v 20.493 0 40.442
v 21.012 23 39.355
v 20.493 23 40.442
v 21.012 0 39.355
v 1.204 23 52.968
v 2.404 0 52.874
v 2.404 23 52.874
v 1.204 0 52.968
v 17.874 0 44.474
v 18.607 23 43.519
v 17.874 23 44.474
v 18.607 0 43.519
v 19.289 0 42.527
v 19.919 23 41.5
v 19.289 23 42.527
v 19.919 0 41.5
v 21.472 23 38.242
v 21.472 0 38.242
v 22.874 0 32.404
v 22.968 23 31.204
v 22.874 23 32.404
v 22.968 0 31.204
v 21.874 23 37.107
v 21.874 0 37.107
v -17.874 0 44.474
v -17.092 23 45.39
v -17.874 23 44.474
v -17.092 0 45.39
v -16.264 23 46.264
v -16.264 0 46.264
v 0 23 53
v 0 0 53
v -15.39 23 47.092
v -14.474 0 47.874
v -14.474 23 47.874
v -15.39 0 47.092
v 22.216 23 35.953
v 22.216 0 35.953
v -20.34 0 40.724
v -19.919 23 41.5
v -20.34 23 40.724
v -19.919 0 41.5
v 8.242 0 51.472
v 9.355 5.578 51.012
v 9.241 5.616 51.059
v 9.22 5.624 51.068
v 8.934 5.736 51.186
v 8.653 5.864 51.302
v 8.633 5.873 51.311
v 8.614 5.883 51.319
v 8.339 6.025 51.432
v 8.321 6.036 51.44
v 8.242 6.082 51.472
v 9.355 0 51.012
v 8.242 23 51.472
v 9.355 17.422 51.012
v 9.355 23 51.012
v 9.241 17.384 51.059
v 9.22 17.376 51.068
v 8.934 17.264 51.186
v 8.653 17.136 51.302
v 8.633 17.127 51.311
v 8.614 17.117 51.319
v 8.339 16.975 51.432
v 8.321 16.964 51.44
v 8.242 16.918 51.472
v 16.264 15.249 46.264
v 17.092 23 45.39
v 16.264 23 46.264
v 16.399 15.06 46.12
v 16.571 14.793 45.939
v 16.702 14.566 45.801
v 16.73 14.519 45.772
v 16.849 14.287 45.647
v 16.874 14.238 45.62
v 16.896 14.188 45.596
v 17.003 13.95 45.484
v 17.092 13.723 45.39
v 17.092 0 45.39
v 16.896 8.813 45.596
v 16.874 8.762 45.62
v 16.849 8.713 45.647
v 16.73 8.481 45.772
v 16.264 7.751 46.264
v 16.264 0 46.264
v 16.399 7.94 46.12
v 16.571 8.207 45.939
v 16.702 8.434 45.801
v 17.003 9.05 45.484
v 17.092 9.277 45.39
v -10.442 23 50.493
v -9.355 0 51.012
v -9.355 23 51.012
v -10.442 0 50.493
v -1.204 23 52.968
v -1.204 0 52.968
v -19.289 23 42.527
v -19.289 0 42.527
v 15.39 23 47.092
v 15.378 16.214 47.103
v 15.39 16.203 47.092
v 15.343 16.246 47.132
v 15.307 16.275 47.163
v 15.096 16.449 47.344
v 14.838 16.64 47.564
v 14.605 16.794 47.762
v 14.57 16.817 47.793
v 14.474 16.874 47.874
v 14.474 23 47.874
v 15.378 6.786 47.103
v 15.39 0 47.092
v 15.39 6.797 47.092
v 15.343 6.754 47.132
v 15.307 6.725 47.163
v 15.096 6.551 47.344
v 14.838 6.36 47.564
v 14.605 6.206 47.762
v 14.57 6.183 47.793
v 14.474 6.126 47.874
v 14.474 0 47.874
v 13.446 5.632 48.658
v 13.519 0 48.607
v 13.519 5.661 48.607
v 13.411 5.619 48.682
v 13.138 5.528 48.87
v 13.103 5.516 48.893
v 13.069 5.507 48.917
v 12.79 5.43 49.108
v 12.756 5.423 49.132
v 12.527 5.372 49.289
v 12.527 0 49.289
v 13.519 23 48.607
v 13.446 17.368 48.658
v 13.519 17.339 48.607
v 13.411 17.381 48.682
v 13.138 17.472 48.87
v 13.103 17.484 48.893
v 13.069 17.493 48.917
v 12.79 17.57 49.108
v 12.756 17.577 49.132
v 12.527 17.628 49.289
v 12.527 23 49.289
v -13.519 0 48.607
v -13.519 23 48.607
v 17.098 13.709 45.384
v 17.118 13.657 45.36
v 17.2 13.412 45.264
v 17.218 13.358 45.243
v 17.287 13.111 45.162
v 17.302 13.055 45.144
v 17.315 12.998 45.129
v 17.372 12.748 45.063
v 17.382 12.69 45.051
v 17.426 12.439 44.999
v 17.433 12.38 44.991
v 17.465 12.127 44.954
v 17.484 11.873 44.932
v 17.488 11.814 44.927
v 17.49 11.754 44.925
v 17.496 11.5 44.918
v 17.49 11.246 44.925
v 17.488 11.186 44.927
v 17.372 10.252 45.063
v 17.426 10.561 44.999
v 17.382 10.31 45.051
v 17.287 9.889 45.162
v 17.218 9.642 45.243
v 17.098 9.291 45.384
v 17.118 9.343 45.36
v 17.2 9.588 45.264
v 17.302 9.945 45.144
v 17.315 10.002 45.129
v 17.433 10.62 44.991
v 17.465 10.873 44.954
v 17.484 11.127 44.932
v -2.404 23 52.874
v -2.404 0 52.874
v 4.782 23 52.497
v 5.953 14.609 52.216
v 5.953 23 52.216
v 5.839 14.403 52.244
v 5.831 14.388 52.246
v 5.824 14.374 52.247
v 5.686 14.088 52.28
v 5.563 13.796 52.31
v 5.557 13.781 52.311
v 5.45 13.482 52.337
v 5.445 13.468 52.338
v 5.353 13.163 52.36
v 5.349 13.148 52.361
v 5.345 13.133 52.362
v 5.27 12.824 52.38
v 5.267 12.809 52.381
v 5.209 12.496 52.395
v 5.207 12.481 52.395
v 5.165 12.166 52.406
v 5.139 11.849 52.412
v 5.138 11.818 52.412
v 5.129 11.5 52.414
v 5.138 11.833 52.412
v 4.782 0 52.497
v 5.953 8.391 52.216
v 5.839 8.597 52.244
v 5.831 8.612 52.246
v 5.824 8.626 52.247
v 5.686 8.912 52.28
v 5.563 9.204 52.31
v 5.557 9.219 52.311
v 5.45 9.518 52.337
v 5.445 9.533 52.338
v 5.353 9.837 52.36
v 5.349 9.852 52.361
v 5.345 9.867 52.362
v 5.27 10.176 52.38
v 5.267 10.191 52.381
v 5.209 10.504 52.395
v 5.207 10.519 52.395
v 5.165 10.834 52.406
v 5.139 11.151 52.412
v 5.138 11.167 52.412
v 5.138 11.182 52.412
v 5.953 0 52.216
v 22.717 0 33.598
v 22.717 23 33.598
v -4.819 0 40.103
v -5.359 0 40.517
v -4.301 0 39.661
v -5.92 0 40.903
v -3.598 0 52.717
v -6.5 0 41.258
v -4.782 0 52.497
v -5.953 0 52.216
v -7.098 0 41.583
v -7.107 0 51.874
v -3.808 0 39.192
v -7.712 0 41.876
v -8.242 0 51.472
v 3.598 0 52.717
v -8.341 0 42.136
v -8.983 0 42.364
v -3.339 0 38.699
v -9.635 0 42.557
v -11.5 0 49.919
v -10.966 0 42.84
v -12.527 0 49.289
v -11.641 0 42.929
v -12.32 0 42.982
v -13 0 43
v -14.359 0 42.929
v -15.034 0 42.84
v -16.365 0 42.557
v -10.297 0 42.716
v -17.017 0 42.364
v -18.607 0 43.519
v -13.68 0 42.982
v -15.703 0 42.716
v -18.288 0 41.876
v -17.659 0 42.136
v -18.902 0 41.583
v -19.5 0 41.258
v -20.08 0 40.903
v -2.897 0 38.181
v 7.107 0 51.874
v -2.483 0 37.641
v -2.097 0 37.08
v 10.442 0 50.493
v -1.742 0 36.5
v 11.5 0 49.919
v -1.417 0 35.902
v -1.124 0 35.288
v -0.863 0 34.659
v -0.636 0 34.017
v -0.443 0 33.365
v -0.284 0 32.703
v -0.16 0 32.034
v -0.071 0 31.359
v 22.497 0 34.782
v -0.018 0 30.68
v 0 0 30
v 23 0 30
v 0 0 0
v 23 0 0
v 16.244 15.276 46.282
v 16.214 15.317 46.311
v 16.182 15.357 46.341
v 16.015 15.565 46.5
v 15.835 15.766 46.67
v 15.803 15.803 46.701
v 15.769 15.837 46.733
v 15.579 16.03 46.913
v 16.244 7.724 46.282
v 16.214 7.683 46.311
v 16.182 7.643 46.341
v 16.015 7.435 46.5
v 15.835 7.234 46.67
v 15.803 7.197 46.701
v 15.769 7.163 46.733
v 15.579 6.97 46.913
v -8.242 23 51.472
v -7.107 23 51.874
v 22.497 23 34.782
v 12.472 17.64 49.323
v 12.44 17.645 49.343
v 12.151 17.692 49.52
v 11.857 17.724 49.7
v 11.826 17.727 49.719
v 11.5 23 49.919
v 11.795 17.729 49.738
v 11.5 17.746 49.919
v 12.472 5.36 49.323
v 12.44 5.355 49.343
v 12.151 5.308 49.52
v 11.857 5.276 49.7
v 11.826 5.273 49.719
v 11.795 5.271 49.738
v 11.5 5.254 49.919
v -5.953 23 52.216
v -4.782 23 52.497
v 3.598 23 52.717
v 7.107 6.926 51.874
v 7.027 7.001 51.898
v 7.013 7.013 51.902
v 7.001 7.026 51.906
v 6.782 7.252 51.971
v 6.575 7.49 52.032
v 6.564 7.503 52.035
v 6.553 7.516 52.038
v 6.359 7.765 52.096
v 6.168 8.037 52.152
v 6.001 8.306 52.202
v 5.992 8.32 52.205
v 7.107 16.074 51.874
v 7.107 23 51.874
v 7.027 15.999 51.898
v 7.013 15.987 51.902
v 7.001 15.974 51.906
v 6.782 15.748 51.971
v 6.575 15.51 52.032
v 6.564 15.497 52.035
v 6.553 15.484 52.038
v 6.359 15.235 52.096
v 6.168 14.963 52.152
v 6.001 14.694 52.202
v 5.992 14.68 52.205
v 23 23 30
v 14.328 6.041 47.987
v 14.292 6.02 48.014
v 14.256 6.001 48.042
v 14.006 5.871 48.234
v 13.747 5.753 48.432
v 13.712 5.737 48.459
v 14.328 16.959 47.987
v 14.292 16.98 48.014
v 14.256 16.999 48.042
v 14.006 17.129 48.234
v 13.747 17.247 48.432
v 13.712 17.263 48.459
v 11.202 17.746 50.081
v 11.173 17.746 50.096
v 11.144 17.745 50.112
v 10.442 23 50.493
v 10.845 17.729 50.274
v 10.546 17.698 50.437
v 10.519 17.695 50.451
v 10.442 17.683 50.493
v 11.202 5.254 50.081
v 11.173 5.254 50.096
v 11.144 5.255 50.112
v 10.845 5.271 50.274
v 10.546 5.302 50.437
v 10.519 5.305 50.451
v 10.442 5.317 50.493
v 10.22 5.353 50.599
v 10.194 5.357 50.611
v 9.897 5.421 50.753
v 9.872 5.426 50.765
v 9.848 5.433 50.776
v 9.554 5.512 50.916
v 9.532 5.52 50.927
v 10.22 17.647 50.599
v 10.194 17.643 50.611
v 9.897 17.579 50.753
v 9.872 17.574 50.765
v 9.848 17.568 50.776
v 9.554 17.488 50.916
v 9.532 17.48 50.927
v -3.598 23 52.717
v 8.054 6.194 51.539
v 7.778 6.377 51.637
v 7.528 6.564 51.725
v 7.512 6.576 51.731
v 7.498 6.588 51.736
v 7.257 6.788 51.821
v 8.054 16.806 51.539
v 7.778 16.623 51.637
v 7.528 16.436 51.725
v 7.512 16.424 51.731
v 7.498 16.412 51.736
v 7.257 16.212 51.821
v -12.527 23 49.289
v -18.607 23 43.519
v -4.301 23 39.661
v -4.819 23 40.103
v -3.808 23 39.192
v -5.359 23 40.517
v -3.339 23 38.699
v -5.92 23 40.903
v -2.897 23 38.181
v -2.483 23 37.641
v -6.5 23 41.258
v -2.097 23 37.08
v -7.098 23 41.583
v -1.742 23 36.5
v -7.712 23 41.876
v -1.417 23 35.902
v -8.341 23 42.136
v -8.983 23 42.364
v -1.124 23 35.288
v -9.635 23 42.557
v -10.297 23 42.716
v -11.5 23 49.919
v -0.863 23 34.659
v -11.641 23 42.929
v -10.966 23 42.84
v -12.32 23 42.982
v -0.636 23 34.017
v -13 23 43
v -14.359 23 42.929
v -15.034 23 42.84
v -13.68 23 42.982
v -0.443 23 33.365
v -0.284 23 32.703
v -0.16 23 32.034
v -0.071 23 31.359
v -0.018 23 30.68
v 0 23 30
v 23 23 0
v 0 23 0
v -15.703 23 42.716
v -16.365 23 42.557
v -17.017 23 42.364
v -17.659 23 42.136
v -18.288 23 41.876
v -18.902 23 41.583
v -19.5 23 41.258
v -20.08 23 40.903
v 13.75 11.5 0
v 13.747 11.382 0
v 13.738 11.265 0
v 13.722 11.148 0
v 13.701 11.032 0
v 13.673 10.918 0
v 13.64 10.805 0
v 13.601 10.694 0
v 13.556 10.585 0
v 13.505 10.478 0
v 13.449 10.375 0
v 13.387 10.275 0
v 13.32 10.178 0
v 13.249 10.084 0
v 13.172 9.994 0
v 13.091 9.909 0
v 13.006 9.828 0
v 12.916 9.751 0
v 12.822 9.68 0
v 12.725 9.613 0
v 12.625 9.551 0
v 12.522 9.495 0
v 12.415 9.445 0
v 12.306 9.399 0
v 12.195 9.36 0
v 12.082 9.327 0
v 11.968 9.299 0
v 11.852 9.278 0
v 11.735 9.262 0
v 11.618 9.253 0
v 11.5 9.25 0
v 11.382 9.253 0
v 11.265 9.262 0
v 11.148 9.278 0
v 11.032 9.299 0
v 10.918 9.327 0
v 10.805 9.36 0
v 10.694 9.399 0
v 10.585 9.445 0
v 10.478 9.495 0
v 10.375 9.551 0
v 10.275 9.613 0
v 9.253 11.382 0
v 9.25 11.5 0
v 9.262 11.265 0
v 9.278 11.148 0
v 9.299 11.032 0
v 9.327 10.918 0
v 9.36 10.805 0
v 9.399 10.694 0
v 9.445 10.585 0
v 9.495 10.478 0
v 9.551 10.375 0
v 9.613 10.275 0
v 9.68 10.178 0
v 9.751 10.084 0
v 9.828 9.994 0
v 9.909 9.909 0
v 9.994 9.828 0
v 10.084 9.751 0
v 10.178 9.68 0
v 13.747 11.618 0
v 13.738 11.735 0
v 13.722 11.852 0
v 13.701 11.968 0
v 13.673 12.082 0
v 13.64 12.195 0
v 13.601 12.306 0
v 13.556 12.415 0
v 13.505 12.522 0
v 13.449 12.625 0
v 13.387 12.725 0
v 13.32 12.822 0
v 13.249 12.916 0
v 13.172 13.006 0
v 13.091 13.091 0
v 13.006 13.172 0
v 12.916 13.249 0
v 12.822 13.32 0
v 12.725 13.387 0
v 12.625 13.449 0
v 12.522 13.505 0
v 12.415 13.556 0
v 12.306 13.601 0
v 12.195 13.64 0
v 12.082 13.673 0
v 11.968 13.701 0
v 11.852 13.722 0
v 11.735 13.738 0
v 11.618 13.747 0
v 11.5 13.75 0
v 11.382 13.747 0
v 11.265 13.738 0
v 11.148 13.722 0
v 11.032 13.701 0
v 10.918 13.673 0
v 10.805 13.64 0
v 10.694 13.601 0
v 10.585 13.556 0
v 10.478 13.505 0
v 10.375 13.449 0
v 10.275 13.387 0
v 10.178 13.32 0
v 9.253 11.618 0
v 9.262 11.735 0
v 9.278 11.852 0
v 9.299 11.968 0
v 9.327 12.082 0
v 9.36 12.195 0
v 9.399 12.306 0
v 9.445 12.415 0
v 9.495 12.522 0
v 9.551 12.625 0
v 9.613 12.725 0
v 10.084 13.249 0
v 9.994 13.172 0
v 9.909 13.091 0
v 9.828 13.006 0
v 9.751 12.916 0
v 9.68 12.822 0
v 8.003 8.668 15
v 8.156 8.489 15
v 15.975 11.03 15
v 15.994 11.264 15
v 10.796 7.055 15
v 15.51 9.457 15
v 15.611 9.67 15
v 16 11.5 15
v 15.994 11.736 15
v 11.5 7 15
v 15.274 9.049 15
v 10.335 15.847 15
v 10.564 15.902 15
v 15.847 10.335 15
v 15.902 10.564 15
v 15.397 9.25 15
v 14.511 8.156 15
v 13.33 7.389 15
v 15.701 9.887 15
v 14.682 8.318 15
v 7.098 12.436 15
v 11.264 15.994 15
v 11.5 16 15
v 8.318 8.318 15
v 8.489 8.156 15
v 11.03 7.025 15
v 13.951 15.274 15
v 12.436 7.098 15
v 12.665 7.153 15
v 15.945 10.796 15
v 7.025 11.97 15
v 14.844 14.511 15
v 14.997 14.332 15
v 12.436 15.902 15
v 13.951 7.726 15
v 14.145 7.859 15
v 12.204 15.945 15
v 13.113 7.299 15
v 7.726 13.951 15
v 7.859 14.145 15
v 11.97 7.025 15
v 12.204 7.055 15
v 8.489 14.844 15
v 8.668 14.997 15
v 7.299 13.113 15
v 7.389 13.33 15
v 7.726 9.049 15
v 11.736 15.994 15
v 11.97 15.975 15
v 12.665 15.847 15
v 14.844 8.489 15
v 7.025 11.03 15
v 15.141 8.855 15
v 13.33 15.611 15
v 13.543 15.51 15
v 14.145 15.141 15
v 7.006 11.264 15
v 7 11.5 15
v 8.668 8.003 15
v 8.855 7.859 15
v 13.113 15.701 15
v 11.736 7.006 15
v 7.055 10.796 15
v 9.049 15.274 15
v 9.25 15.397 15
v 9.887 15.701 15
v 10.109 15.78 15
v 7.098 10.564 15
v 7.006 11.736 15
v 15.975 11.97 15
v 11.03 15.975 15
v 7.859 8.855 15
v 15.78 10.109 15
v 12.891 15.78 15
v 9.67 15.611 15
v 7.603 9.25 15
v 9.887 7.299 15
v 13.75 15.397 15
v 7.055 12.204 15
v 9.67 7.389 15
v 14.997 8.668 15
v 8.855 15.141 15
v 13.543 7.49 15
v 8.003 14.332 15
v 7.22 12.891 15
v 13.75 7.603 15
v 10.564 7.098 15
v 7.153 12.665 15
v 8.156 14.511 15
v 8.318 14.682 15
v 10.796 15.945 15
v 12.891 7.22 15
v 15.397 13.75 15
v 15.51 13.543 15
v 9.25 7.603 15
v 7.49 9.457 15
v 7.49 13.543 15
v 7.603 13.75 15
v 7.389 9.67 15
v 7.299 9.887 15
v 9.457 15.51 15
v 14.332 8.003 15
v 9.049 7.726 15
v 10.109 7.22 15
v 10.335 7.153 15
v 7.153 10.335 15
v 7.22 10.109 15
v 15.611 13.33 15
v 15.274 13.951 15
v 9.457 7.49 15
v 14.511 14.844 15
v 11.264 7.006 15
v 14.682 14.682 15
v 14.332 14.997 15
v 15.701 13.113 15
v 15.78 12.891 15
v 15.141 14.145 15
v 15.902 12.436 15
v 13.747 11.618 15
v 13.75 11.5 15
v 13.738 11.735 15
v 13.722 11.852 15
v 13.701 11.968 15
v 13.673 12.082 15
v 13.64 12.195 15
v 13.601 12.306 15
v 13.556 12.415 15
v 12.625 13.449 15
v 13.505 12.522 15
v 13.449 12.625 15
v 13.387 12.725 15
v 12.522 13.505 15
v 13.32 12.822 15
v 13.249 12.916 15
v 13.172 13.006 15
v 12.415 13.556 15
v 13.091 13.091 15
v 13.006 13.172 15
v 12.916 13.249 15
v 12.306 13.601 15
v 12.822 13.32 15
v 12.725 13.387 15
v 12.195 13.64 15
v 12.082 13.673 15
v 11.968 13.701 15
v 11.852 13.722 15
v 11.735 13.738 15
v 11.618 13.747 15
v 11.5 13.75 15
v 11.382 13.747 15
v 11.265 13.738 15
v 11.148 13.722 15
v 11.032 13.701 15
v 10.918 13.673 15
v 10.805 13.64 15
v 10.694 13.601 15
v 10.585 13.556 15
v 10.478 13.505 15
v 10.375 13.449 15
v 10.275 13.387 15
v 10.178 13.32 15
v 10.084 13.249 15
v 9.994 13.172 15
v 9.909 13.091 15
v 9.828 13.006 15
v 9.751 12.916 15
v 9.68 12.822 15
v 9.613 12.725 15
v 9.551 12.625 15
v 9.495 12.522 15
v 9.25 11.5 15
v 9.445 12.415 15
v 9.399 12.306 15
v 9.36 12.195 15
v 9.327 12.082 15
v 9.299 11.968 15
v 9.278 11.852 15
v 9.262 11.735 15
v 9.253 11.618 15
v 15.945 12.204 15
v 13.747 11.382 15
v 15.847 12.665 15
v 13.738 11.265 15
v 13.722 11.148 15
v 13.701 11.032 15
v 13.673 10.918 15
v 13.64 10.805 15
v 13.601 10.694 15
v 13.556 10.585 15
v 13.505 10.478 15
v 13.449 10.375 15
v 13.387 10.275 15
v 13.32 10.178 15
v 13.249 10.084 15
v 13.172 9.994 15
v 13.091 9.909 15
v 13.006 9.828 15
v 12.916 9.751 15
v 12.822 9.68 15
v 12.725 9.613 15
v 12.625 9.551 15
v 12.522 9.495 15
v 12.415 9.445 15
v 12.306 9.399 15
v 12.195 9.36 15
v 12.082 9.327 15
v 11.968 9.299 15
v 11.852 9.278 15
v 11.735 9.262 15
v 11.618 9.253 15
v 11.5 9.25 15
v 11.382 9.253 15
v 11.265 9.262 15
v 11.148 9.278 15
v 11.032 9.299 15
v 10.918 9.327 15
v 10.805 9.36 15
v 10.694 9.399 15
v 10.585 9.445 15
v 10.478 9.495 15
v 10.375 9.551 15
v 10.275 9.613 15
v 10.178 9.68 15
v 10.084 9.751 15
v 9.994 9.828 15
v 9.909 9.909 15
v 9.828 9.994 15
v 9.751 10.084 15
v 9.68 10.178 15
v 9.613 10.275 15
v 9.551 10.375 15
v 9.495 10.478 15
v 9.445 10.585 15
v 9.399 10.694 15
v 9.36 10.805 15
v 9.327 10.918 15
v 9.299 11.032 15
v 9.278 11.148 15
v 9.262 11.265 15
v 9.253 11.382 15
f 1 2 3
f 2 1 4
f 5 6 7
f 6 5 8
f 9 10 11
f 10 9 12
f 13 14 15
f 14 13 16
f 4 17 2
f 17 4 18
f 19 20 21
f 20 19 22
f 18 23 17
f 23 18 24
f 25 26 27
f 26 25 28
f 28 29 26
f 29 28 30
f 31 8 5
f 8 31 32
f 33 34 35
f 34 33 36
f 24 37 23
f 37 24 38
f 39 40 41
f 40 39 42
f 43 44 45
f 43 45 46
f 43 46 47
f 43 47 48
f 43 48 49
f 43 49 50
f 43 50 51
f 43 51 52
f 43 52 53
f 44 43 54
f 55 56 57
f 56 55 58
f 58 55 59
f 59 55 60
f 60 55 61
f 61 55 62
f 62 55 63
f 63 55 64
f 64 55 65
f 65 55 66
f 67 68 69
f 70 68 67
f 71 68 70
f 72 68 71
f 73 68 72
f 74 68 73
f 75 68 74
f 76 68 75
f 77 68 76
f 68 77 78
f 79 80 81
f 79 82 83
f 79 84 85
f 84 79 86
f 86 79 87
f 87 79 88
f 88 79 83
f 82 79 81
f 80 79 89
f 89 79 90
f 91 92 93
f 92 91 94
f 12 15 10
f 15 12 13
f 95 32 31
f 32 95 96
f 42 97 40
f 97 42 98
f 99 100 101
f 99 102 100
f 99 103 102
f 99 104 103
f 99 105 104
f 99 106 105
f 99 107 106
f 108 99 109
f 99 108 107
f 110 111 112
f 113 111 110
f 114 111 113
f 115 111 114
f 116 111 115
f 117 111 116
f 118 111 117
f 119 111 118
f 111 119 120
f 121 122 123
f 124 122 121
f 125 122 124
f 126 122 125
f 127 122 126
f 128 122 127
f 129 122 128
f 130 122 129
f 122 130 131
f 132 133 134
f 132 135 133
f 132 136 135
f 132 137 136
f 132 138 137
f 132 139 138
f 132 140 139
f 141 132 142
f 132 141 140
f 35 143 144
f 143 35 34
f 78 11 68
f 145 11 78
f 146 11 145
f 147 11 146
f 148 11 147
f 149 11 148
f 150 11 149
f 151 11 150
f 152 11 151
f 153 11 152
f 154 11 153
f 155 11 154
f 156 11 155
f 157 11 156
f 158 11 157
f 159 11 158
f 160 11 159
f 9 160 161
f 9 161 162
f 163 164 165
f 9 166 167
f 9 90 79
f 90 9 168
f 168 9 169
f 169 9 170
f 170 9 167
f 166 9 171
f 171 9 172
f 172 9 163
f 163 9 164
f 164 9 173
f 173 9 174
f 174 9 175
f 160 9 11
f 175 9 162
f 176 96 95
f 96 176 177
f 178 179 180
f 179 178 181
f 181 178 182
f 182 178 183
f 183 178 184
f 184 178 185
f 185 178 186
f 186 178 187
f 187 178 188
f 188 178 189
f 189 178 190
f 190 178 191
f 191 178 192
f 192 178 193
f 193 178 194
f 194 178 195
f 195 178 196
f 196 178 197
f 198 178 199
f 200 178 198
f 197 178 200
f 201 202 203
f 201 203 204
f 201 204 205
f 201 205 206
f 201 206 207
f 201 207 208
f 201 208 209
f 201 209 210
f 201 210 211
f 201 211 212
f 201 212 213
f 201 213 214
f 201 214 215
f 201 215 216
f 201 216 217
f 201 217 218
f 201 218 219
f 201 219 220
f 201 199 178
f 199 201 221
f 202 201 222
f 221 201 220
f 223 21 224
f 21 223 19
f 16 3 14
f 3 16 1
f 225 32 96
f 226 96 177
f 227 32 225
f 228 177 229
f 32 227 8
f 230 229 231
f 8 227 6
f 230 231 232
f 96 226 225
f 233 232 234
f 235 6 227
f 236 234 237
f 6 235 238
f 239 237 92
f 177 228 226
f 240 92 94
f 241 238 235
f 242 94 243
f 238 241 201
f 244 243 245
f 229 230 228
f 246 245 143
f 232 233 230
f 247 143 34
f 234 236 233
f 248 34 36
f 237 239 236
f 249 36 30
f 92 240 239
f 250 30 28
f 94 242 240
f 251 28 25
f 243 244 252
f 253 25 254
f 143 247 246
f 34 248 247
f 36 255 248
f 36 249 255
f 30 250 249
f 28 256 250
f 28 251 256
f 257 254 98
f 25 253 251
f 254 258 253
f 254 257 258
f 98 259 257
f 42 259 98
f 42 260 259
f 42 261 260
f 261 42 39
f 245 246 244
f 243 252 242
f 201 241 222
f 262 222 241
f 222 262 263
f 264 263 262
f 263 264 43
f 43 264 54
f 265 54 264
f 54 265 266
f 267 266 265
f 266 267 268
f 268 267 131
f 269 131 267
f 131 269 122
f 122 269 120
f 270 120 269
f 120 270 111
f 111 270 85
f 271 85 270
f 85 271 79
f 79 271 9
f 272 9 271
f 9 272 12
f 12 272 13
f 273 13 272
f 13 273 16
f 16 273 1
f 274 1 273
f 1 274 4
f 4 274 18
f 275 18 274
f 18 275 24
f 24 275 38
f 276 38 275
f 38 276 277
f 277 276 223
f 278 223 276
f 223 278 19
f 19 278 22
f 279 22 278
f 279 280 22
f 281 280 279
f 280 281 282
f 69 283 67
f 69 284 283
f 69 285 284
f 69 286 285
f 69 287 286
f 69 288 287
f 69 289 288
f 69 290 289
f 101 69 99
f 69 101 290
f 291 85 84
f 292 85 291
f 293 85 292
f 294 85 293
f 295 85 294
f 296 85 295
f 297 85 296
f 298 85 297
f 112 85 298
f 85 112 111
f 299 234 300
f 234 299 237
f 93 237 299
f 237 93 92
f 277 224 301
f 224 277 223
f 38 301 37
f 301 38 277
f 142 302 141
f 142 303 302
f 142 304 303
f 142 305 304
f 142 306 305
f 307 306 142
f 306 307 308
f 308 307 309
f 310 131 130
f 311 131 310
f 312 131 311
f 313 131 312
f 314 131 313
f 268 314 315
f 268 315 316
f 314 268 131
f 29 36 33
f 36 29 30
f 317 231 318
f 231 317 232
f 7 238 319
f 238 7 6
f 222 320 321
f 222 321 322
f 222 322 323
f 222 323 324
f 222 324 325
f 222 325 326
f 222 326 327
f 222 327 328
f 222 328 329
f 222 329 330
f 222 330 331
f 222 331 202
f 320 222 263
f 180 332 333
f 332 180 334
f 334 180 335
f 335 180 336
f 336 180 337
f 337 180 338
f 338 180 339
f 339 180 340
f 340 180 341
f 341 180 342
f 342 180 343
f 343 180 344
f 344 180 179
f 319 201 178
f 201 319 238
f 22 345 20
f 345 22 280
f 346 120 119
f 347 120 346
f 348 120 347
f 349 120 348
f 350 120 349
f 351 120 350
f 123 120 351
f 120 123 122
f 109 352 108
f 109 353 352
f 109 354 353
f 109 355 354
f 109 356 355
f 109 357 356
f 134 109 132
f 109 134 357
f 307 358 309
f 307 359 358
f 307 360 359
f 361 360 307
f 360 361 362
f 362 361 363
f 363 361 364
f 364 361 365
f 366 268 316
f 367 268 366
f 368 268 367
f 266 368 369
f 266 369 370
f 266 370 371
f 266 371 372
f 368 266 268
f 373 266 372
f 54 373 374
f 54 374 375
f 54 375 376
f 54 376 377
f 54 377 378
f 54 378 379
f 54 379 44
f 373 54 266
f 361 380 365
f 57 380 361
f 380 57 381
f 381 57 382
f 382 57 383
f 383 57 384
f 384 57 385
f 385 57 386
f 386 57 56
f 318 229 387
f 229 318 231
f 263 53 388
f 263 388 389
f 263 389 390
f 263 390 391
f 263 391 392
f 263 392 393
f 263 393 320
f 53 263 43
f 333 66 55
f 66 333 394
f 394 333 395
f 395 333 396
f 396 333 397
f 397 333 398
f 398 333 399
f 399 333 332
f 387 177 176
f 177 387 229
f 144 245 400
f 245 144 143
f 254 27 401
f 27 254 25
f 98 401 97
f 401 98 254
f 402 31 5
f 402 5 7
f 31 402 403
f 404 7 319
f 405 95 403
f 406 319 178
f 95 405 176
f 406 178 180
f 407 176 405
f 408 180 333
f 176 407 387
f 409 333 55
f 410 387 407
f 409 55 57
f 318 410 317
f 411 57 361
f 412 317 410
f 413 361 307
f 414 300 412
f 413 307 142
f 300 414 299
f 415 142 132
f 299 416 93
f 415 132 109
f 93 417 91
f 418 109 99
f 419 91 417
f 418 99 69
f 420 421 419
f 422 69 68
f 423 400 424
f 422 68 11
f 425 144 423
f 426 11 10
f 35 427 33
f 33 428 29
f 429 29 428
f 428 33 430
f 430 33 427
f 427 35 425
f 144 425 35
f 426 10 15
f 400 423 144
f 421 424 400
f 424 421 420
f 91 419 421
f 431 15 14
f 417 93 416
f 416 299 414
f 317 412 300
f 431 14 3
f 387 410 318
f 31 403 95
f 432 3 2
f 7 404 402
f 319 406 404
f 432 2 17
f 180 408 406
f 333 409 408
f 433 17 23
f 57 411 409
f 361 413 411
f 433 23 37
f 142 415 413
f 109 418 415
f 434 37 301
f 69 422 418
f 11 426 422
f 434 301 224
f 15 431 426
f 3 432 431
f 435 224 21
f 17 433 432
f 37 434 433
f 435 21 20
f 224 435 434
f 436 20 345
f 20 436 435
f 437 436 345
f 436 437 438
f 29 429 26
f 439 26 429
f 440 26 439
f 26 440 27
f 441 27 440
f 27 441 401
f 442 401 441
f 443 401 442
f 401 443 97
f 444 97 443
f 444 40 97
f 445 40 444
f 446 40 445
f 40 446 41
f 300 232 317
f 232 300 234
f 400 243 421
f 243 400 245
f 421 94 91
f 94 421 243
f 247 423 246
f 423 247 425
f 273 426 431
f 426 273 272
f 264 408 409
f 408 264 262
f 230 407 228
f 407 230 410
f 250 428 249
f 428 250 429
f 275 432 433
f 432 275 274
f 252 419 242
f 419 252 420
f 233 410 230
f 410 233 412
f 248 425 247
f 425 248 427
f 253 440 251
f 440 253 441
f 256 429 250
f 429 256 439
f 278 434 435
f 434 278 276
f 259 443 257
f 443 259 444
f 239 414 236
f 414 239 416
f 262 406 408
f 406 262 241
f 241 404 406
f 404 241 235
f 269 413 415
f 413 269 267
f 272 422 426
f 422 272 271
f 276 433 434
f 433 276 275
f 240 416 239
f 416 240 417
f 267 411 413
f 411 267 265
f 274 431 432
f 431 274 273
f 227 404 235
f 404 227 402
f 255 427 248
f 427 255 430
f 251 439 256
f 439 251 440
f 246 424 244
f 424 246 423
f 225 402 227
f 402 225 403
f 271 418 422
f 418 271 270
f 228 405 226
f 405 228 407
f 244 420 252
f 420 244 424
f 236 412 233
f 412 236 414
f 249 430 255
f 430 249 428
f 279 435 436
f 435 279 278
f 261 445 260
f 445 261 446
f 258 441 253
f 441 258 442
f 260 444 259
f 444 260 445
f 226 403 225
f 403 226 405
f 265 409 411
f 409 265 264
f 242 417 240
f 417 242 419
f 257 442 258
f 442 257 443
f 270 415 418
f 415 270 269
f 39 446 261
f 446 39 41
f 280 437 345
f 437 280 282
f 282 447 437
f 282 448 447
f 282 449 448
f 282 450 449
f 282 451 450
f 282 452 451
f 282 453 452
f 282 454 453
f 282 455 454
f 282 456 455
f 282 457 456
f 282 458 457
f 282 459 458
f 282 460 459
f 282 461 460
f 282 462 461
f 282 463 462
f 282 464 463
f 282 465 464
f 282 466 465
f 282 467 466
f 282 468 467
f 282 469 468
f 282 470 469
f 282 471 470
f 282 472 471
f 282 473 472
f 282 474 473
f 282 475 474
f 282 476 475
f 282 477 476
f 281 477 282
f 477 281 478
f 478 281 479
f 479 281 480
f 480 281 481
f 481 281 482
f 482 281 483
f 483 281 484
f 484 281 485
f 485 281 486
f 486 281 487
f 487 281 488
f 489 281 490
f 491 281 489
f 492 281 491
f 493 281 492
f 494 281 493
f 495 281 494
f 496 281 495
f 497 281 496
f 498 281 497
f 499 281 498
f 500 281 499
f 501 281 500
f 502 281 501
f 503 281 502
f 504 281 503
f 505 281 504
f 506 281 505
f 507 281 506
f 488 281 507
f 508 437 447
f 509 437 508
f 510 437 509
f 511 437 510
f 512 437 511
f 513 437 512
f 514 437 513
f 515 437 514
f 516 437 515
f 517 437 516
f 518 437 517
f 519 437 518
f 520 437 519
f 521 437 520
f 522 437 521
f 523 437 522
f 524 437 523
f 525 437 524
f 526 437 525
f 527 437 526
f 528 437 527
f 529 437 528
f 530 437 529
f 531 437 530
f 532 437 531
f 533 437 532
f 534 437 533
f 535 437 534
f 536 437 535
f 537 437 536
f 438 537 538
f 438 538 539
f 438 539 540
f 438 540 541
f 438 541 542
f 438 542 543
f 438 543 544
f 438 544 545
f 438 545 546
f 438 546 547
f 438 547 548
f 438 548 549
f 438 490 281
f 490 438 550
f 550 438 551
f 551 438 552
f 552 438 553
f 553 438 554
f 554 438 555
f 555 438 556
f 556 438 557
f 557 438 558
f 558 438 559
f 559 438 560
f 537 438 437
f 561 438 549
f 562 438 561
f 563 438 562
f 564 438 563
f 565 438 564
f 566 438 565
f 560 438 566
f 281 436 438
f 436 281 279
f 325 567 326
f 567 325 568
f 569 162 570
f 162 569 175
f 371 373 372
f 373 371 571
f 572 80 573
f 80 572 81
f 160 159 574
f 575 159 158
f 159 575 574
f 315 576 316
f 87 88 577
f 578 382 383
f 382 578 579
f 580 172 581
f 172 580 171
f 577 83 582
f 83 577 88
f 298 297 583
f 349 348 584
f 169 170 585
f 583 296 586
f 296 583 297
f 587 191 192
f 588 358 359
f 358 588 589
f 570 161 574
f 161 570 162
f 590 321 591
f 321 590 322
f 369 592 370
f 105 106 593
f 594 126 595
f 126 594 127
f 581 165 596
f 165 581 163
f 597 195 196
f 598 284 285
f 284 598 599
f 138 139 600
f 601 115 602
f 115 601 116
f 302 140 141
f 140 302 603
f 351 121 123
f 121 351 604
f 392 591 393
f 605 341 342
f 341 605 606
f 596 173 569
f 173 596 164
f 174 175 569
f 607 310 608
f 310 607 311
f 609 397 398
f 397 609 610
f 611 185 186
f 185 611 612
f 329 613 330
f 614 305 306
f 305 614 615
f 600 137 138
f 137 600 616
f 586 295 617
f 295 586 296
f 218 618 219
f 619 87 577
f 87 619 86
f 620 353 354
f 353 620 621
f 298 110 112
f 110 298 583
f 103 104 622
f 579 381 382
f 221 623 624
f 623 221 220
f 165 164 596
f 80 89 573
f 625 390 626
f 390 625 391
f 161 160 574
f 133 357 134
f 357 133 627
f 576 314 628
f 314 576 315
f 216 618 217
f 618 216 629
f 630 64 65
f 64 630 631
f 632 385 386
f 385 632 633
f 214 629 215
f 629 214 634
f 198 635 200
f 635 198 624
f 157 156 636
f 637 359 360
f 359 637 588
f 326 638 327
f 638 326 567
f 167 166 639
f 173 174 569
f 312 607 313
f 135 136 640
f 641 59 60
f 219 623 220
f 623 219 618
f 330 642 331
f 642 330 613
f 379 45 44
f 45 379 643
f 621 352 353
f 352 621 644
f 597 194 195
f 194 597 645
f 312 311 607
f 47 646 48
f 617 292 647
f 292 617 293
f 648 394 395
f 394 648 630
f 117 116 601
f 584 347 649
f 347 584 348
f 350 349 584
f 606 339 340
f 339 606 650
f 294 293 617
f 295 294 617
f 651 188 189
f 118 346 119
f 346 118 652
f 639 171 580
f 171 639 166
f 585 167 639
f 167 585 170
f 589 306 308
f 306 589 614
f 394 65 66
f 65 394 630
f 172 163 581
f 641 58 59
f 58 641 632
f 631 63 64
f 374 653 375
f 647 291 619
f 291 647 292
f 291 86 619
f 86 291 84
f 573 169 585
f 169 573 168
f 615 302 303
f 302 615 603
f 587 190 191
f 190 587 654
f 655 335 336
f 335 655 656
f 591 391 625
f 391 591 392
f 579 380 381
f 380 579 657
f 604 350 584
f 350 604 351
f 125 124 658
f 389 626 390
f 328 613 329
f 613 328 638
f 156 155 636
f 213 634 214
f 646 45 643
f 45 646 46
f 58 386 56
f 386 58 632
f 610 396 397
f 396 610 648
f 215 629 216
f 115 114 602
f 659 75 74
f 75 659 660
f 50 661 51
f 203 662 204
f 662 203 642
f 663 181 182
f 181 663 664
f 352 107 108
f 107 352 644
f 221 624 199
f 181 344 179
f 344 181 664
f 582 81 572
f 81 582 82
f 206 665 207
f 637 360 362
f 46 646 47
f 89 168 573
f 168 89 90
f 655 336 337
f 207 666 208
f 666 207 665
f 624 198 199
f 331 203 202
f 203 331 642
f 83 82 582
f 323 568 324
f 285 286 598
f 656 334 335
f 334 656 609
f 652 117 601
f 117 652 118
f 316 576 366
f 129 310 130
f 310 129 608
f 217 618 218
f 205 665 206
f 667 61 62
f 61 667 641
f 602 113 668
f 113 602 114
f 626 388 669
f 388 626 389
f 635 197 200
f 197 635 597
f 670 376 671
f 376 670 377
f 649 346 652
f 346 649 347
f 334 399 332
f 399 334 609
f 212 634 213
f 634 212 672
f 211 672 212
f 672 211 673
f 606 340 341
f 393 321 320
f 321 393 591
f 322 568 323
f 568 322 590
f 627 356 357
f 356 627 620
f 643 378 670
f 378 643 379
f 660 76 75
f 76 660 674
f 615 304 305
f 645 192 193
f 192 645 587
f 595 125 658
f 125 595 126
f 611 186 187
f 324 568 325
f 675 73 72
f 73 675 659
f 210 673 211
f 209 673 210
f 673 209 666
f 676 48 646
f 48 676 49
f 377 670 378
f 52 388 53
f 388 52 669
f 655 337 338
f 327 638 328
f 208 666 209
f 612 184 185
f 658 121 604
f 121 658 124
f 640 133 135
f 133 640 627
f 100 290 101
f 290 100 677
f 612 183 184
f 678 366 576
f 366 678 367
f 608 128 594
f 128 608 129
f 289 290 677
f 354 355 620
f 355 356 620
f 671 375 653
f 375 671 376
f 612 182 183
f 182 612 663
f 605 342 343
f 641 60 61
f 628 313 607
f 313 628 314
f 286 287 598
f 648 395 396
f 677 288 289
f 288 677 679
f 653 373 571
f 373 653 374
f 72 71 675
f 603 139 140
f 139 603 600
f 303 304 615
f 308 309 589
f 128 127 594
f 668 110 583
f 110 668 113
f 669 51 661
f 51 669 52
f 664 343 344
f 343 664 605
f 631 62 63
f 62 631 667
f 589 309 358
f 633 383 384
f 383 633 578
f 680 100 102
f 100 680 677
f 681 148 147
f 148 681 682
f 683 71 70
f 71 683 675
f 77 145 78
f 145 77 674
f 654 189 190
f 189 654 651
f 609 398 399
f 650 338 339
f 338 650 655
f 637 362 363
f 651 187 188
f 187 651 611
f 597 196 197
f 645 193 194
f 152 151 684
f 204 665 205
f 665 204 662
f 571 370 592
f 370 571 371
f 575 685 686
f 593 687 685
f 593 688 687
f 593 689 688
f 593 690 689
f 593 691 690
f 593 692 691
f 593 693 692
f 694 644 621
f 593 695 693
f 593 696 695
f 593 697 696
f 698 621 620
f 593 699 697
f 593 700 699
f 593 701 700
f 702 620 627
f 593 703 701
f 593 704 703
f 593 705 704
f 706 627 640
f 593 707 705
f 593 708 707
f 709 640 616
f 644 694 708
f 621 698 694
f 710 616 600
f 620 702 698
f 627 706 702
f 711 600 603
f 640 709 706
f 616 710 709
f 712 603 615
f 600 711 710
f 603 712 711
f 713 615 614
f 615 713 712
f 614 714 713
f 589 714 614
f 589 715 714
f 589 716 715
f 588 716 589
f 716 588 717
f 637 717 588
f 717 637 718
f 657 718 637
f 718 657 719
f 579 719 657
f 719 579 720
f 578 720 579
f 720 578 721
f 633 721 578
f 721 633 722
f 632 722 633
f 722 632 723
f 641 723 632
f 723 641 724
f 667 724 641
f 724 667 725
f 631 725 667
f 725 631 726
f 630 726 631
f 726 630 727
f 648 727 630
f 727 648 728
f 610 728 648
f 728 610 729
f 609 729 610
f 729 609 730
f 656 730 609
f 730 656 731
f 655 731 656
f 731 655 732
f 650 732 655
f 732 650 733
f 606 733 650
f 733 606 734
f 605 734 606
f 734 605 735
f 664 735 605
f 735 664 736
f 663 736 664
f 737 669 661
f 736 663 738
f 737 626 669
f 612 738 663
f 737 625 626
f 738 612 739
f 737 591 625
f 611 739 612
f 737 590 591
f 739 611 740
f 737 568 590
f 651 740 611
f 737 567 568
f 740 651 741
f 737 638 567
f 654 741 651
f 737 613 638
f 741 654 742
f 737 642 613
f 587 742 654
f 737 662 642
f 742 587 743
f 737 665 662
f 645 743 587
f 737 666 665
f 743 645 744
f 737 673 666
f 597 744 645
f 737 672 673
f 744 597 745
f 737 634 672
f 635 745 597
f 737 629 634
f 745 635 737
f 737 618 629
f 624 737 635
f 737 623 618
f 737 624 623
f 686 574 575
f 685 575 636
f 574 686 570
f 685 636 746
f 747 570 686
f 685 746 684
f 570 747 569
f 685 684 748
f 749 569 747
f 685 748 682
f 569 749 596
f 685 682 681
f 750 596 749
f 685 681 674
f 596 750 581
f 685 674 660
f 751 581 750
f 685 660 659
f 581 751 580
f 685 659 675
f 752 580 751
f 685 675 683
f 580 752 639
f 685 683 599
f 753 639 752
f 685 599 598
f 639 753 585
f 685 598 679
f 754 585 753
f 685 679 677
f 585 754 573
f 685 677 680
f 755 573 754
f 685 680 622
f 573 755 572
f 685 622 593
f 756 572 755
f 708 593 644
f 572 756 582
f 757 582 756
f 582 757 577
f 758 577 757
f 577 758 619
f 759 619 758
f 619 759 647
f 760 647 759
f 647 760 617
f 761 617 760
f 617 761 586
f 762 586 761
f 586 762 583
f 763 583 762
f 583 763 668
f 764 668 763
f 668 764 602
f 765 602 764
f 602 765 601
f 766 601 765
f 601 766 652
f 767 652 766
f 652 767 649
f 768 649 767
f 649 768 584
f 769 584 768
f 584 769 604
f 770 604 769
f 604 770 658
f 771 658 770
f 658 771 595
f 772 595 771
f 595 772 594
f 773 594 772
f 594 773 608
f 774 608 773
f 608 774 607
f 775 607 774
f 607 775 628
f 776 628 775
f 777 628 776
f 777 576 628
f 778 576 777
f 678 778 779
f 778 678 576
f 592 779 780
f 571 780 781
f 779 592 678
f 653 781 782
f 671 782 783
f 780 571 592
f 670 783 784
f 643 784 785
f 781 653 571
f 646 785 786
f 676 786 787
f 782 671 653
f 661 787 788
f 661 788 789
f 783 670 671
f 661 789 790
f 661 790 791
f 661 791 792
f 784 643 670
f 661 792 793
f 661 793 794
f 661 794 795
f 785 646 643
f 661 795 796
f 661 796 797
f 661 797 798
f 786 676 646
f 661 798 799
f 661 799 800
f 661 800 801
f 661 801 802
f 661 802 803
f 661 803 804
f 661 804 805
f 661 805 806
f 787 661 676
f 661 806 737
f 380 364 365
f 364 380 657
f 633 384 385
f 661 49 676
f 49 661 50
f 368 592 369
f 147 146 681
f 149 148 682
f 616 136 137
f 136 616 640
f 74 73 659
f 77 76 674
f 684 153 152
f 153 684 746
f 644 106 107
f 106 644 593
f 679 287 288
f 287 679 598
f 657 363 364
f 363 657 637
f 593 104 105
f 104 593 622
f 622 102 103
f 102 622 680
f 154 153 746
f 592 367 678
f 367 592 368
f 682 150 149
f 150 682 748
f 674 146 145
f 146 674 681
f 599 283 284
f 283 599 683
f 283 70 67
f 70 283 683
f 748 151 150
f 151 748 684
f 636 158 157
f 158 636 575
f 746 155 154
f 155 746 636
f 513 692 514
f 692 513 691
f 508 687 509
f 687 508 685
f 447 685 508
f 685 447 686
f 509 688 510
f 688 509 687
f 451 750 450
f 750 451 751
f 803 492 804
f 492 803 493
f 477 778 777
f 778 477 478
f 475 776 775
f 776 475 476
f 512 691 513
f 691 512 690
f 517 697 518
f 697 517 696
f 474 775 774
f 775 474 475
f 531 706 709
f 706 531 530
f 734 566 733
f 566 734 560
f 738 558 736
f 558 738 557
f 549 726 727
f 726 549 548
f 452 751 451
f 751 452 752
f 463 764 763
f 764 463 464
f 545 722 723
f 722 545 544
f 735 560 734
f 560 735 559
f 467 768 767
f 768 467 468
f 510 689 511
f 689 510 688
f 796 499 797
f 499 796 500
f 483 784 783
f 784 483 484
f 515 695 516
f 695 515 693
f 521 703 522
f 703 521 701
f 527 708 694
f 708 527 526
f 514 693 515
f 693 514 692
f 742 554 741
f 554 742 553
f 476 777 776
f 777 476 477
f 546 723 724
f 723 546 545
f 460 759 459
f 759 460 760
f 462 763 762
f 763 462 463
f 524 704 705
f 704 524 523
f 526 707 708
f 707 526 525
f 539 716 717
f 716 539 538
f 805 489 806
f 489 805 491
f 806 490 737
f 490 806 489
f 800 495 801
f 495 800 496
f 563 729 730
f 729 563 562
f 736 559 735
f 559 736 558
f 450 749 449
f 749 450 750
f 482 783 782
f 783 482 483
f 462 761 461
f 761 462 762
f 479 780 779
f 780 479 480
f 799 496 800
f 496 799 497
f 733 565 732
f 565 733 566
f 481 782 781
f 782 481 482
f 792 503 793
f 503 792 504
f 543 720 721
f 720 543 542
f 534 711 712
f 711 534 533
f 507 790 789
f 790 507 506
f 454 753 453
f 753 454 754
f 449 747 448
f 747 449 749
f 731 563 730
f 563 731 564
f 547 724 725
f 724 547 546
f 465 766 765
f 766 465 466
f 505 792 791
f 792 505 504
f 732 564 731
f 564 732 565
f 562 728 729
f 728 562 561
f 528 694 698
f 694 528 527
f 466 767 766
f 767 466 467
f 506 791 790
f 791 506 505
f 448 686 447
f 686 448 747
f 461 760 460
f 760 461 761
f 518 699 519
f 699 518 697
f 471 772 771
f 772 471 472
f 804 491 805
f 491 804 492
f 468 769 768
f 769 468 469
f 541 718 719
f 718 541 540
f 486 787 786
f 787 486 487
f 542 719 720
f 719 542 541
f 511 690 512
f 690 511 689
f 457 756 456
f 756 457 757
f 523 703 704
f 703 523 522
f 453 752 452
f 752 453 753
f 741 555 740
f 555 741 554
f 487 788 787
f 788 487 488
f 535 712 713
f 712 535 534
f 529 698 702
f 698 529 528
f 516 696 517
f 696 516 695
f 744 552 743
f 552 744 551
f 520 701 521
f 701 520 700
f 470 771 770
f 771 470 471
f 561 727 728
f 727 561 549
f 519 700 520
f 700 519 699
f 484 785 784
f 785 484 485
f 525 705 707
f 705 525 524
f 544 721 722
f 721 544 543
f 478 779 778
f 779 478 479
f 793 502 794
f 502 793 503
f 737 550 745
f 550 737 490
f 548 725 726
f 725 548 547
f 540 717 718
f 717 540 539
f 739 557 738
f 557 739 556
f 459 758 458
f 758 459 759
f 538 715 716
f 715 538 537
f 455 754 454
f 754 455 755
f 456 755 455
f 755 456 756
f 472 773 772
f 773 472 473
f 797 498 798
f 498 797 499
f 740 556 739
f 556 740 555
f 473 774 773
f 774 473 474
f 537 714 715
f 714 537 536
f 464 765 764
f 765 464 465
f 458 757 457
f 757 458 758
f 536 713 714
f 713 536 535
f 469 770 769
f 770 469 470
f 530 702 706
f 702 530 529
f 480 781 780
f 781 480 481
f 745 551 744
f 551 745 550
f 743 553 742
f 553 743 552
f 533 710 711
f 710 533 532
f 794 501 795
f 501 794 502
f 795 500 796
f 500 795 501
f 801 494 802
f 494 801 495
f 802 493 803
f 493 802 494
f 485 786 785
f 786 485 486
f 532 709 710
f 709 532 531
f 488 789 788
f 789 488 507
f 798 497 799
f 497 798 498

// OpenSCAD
chassis_tube_d = 26;	//TODO: Check
diff = 30;				//TODO: Check
breite = 23;
sdriver_clearance = 10;

$fn = $preview ? 80 : 120;

difference(){
	union(){
		translate([0,0,diff])
			rotate([-90, 0,0]) difference(){
				cylinder(r=breite, h=breite);
				translate([-breite, 0,-.5])
					cube([breite*2, breite, breite+1]);
				
				//the tube
				translate([-chassis_tube_d/2,0,-.5])
					cylinder(d=chassis_tube_d, h=breite+1);
			}
		cube([breite, breite, diff]);
	}
	//the screw hole
	translate([breite/2, breite/2,0]){
		translate([0,0, 15])
			cylinder(d1=sdriver_clearance-1, d2=sdriver_clearance+3, h=diff+10);
		cylinder(d=4.5, h=100);
	}
}
